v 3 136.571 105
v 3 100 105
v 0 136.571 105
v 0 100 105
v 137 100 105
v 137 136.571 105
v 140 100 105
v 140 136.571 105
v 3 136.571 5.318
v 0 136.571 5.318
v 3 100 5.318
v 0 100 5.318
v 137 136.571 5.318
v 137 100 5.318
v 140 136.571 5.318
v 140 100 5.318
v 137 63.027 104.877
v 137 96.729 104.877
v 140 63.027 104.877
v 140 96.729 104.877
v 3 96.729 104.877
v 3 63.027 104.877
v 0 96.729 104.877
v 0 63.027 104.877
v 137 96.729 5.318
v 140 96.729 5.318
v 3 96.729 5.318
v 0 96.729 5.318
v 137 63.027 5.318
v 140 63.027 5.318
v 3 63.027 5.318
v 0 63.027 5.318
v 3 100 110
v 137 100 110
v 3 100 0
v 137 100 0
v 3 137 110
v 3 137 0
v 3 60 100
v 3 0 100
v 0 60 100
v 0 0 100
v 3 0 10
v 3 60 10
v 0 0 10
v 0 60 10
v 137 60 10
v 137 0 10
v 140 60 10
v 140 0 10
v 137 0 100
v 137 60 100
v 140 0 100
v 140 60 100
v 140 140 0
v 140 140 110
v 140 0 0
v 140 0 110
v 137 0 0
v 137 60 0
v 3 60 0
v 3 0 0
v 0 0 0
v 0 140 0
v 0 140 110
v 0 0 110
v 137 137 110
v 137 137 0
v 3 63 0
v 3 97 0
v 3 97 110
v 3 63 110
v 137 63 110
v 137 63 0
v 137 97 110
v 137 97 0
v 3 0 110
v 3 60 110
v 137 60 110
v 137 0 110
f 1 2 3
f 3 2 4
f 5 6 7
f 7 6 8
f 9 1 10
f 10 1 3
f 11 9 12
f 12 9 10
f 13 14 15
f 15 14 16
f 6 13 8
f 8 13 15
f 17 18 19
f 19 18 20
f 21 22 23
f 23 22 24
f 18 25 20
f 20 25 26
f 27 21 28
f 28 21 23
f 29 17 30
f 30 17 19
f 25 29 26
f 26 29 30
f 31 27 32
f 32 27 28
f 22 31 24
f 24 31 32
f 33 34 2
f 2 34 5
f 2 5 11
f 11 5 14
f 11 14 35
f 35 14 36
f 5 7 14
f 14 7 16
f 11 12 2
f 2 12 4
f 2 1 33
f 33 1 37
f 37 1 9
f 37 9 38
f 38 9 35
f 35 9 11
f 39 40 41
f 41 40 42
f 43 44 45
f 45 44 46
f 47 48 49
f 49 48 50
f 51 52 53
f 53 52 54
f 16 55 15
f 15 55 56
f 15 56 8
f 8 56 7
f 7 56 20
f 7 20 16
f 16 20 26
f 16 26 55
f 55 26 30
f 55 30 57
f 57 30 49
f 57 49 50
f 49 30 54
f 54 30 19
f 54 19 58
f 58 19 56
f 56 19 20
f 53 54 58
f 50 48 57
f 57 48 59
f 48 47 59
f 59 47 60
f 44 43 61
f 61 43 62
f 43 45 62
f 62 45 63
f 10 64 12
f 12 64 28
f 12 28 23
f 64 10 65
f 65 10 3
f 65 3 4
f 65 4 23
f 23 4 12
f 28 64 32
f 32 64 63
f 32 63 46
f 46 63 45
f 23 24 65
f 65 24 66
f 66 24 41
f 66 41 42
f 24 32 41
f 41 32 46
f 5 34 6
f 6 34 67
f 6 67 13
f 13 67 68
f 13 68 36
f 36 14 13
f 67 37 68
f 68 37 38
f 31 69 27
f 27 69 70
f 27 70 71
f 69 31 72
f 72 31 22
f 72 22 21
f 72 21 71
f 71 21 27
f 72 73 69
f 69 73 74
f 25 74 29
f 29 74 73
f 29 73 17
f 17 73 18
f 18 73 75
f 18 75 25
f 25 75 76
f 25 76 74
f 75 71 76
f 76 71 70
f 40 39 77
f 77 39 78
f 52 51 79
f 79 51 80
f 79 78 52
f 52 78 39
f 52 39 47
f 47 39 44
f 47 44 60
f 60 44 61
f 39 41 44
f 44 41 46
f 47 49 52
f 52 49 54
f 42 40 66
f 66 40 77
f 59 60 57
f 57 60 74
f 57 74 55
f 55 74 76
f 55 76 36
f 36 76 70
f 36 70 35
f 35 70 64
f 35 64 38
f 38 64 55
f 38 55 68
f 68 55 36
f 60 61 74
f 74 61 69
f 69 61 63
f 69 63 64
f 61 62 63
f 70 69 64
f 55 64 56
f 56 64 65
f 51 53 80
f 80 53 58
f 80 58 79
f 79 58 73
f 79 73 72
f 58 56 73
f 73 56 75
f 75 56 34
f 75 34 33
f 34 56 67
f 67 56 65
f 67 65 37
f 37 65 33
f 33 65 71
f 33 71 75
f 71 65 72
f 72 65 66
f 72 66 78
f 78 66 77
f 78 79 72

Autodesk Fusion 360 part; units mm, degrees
sketch "Sketch1" plane through (0, 0, 0) normal (0, 0, 1) x (1, 0, 0)
  line L0 (0, 0) -> (140, 0)
  line L1 (140, 0) -> (140, 140)
  line L2 (140, 140) -> (0, 140)
  line L3 (0, 140) -> (0, 0)
  dimension "d1" = 140
  dimension "d2" = 140
extrude "Extrude1" add sketch "Sketch1" along normal blind 110
sketch "Sketch2" plane through (0, 0, 110) normal (0, 0, 1) x (-1, 0, 0)
  line L0 (0, -140) -> (0, 0)
  line L1 (0, 0) -> (-140, 0)
  line L2 (-140, 0) -> (-140, -140)
  line L3 (-140, -140) -> (0, -140)
  line L4 (0, -140) -> (-3, -140)
  line L5 (-3, -140) -> (-3, -137)
  line L6 (-3, -137) -> (0, -137)
  line L7 (0, -137) -> (0, -140)
  line L8 (-70, -140) -> (-70, 0)
  line L9 (0, -100) -> (-140, -100)
  line L10 (0, -60) -> (-140, -60)
  line L11 (-137, -137) -> (-140, -137)
  line L12 (-137, -140) -> (-137, -137)
  line L13 (-3, -63) -> (0, -63)
  line L14 (-3, -60) -> (-3, -63)
  line L15 (-137, -60) -> (-137, -63)
  line L16 (-137, -63) -> (-140, -63)
  line L17 (0, -100) -> (-3, -100)
  line L18 (-3, -100) -> (-3, -97)
  line L19 (-3, -97) -> (0, -97)
  line L20 (0, -97) -> (0, -100)
  line L21 (0, -100) -> (-140, -100)
  line L22 (-140, -100) -> (-140, -97)
  line L23 (-140, -97) -> (0, -97)
  line L24 (0, -97) -> (0, -100)
  line L25 (-140, -60) -> (0, -60)
  line L26 (0, -60) -> (0, -63)
  line L27 (0, -63) -> (-140, -63)
  line L28 (-140, -63) -> (-140, -60)
  line L29 (-140, -140) -> (0, -140)
  line L30 (0, -140) -> (0, -137)
  line L31 (0, -137) -> (-140, -137)
  line L32 (-140, -137) -> (-140, -140)
  line L33 (0, -140) -> (-3, -140)
  line L34 (-3, -140) -> (-3, 0)
  line L35 (-3, 0) -> (0, 0)
  line L36 (0, 0) -> (0, -140)
  line L37 (-140, -140) -> (-137, -140)
  line L38 (-137, -140) -> (-137, 0)
  line L39 (-137, 0) -> (-140, 0)
  line L40 (-140, 0) -> (-140, -140)
  dimension "d5" = 3
  dimension "d6" = 3
  dimension "d7" = 3
  dimension "d8" = 3
extrude "Extrude2" cut sketch "Sketch2" against normal blind 110 contours L8 L9 L21 L31 L34 | L8 L9 L21 L31 L38 | L8 L23 L27 L34 | L8 L23 L27 L38 | L1 L8 L10 L25 L34 | L1 L8 L10 L25 L38
sketch "Sketch3" plane through (140, 0, 0) normal (1, 0, 0) x (0, 1, 0)
  line L0 (0, 0) -> (140, 0)
  line L1 (140, 0) -> (140, 110)
  line L2 (140, 110) -> (0, 110)
  line L3 (0, 110) -> (0, 0)
  line L4 (0, 110) -> (10, 110)
  line L5 (10, 110) -> (10, 100)
  line L6 (10, 100) -> (0, 100)
  line L7 (0, 100) -> (0, 110)
  line L8 (0, 0) -> (10, 0)
  line L9 (10, 0) -> (10, 10)
  line L10 (10, 10) -> (0, 10)
  line L11 (0, 10) -> (0, 0)
  line L12 (60, 110) -> (50, 110)
  line L13 (50, 110) -> (50, 100)
  line L14 (50, 100) -> (60, 100)
  line L15 (60, 100) -> (60, 110)
  line L16 (60, 0) -> (50, 0)
  line L17 (50, 0) -> (50, 10)
  line L18 (50, 10) -> (60, 10)
  line L19 (60, 10) -> (60, 0)
  line L20 (50, 10) -> (10, 10)
  line L21 (10, 10) -> (10, 100)
  line L22 (10, 100) -> (50, 100)
  line L23 (50, 100) -> (50, 10)
  line L24 (60, 100) -> (60, 10)
extrude "Extrude3" cut sketch "Sketch3" against normal blind 140 contours L3 L6 L10 L21 | L20 L21 L22 L23 | L14 L18 L23 L24
sketch "Sketch5" plane through (0, 0, 0) normal (-1, 0, 0) x (0, -1, 0)
  line L0 (0, 10) -> (-60, 10)
  line L1 (-60, 10) -> (-60, 100)
  line L2 (-60, 100) -> (0, 100)
  line L3 (0, 100) -> (0, 110)
  line L4 (0, 110) -> (-140, 110)
  line L5 (-140, 110) -> (-140, 0)
  line L6 (-140, 0) -> (0, 0)
  line L7 (0, 0) -> (0, 10)
  line L8 (-136.5713, 0) -> (-100, 0)
  line L9 (-100, 0) -> (-100, 110)
  line L10 (-100, 110) -> (-136.5713, 110)
  line L11 (-136.5713, 110) -> (-136.5713, 0)
  line L12 (-136.5713, 5.3179) -> (-100, 5.3179)
  line L13 (-100, 5.3179) -> (-100, 105)
  line L14 (-100, 105) -> (-136.5713, 105)
  line L15 (-136.5713, 105) -> (-136.5713, 5.3179)
  line L16 (-96.7286, 0) -> (-63.0271, 0)
  line L17 (-63.0271, 0) -> (-63.0271, 110)
  line L18 (-63.0271, 110) -> (-96.7286, 110)
  line L19 (-96.7286, 110) -> (-96.7286, 0)
  line L20 (-96.7286, 5.3179) -> (-63.0271, 5.3179)
  line L21 (-63.0271, 5.3179) -> (-63.0271, 104.8767)
  line L22 (-63.0271, 104.8767) -> (-96.7286, 104.8767)
  line L23 (-96.7286, 104.8767) -> (-96.7286, 5.3179)
extrude "Extrude4" cut sketch "Sketch5" against normal blind 140 contours L17 L19 L20 L21 L22 L23 | L9 L11 L12 L13 L14 L15
